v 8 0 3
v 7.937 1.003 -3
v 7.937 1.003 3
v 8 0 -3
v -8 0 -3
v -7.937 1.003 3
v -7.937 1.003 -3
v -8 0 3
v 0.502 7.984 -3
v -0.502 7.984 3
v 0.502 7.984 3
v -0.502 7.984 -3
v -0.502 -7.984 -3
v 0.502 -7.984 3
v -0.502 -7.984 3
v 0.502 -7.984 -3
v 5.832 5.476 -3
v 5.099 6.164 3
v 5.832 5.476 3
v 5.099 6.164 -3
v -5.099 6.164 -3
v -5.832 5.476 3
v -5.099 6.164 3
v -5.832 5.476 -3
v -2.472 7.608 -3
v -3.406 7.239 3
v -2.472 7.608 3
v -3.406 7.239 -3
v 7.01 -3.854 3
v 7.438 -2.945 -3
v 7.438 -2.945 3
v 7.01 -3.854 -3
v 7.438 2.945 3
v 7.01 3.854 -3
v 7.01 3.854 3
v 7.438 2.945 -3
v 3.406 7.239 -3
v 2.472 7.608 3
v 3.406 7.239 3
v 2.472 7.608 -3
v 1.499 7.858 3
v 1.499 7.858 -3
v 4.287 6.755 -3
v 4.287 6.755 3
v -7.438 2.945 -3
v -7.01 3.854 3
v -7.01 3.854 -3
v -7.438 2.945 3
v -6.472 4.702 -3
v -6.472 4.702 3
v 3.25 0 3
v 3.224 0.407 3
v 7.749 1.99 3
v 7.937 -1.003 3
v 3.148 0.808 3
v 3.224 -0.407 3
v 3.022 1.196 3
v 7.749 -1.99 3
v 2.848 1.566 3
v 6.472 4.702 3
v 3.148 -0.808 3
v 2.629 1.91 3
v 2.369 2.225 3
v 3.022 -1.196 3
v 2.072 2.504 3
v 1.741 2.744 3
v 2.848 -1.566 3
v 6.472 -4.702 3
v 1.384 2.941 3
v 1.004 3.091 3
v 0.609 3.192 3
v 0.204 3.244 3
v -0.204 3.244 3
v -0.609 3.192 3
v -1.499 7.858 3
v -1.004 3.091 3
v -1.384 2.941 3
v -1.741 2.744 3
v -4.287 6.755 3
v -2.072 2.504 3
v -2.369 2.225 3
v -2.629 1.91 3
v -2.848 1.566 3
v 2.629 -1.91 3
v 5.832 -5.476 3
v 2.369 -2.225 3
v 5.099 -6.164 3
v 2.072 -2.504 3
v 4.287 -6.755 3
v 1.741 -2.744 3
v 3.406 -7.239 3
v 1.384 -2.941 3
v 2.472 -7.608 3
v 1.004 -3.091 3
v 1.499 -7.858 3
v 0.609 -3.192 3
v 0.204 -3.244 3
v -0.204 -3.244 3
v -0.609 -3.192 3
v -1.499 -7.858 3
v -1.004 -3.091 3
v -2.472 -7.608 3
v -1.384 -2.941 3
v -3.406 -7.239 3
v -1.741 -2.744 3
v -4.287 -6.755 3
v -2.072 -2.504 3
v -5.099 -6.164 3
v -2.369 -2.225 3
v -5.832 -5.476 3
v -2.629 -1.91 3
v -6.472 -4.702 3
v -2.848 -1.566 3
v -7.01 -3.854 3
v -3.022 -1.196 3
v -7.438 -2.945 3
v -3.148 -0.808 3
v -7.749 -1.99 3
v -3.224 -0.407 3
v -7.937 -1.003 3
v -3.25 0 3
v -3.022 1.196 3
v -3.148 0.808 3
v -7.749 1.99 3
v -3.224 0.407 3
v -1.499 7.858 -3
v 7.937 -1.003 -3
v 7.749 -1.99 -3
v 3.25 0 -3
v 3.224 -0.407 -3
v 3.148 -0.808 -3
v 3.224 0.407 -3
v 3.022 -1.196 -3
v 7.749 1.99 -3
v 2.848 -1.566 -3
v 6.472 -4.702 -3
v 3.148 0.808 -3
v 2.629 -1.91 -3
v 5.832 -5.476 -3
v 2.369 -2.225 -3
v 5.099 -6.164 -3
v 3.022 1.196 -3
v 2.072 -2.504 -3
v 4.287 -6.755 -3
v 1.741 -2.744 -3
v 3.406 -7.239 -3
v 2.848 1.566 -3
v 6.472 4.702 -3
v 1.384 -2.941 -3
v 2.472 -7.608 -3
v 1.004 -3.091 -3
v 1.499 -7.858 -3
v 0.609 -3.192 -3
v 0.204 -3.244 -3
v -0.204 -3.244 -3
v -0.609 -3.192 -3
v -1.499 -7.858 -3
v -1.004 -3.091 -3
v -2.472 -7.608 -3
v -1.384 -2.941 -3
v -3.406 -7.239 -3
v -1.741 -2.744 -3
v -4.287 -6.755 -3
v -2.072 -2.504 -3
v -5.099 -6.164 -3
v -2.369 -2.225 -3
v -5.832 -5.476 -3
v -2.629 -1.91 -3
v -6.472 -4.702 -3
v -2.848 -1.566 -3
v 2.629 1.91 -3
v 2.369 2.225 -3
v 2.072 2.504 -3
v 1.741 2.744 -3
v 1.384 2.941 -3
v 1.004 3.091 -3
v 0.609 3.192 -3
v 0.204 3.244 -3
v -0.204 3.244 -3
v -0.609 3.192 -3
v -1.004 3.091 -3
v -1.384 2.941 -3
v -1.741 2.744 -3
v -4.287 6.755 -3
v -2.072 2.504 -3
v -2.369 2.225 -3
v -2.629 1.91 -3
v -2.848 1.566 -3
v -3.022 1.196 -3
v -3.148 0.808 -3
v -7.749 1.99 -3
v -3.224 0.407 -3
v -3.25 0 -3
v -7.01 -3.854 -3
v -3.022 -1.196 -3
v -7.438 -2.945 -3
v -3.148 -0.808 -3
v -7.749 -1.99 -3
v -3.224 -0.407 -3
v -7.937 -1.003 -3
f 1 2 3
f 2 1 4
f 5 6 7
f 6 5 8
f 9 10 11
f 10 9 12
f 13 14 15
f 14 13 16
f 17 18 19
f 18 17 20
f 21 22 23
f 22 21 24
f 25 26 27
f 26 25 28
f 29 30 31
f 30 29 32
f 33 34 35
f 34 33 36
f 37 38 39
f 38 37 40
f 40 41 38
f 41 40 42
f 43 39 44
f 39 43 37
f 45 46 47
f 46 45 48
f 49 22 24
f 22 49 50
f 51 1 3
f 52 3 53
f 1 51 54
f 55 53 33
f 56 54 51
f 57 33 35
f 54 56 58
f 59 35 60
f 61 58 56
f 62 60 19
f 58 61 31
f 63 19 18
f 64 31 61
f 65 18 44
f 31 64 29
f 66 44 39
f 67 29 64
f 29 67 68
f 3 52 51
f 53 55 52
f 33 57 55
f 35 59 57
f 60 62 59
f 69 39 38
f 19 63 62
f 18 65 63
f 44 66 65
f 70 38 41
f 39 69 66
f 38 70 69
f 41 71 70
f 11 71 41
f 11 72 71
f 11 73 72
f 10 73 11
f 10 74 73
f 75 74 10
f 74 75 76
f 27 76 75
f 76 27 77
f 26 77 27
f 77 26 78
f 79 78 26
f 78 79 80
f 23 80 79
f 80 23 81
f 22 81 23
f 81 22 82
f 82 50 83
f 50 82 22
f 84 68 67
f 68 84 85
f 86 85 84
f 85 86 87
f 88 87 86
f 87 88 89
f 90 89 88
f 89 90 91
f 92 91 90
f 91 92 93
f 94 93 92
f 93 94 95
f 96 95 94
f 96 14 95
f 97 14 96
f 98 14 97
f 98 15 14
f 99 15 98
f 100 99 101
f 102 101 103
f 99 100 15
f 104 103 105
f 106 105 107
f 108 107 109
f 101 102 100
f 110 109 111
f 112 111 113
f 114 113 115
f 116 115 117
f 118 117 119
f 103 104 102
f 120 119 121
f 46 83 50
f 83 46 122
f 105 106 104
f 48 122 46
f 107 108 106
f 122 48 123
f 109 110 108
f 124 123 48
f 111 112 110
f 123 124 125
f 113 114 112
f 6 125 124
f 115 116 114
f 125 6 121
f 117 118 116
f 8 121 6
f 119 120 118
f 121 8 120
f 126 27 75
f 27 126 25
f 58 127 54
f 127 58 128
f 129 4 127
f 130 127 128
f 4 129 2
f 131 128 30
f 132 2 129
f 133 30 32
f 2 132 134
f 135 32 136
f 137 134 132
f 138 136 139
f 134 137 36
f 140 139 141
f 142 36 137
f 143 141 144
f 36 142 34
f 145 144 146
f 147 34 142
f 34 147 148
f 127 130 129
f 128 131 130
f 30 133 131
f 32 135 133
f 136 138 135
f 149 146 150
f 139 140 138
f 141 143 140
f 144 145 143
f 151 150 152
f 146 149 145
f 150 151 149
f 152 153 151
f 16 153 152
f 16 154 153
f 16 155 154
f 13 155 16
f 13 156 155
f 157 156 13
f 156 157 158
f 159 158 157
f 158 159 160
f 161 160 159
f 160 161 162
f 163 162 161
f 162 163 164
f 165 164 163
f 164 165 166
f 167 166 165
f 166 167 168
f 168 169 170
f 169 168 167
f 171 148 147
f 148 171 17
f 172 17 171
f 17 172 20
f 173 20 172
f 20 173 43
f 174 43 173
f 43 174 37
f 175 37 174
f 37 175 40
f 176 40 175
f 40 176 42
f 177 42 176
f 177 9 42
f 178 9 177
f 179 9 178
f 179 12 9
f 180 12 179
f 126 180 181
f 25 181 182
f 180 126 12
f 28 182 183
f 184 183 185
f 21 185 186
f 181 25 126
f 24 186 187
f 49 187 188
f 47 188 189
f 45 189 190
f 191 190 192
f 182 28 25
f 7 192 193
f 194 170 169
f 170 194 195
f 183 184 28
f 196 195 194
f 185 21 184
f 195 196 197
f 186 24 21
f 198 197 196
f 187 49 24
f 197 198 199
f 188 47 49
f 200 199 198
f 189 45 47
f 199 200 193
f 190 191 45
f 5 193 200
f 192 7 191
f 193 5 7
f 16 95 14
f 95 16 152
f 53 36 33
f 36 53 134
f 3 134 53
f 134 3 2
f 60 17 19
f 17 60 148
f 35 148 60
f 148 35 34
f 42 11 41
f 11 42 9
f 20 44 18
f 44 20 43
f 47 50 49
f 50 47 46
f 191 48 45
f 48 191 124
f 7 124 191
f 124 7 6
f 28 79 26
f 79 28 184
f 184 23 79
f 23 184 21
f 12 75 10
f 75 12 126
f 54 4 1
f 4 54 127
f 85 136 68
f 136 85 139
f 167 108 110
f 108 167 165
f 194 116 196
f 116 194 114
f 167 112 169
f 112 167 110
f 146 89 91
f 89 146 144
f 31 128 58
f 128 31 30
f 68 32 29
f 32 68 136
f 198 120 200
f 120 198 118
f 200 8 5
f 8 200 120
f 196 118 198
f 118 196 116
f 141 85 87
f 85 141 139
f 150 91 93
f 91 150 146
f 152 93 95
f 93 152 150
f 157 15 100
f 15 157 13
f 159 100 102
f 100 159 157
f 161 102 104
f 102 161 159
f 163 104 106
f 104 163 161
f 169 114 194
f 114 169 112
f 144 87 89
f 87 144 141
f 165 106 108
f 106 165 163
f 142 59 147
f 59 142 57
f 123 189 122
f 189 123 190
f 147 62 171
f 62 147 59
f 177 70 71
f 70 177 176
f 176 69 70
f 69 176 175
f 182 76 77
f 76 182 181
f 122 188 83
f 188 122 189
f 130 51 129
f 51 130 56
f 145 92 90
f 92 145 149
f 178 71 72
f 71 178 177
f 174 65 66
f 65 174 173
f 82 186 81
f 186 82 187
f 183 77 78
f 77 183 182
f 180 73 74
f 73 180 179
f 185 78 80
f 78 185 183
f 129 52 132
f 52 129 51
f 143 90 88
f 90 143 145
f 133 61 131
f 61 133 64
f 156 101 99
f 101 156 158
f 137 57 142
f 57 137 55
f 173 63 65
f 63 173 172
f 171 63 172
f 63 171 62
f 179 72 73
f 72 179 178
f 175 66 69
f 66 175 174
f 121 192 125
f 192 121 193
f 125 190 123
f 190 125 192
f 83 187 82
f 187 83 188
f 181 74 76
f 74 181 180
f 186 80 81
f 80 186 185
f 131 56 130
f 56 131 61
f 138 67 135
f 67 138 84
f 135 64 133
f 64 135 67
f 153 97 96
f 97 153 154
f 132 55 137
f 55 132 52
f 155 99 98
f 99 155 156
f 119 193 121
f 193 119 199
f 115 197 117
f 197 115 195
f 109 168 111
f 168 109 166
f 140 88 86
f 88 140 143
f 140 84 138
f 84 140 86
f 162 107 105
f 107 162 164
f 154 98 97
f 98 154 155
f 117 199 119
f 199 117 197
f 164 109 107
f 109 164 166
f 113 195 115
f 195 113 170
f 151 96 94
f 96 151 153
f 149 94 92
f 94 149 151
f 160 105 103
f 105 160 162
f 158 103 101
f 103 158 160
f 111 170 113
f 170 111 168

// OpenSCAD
$fn = 50;


difference() {
	union() {
		translate(v = [0, 0, -3.0000000000]) {
			cylinder(h = 6, r = 8.0000000000);
		}
	}
	union() {
		translate(v = [0, 0, -100.0000000000]) {
			cylinder(h = 200, r = 3.2500000000);
		}
	}
}
